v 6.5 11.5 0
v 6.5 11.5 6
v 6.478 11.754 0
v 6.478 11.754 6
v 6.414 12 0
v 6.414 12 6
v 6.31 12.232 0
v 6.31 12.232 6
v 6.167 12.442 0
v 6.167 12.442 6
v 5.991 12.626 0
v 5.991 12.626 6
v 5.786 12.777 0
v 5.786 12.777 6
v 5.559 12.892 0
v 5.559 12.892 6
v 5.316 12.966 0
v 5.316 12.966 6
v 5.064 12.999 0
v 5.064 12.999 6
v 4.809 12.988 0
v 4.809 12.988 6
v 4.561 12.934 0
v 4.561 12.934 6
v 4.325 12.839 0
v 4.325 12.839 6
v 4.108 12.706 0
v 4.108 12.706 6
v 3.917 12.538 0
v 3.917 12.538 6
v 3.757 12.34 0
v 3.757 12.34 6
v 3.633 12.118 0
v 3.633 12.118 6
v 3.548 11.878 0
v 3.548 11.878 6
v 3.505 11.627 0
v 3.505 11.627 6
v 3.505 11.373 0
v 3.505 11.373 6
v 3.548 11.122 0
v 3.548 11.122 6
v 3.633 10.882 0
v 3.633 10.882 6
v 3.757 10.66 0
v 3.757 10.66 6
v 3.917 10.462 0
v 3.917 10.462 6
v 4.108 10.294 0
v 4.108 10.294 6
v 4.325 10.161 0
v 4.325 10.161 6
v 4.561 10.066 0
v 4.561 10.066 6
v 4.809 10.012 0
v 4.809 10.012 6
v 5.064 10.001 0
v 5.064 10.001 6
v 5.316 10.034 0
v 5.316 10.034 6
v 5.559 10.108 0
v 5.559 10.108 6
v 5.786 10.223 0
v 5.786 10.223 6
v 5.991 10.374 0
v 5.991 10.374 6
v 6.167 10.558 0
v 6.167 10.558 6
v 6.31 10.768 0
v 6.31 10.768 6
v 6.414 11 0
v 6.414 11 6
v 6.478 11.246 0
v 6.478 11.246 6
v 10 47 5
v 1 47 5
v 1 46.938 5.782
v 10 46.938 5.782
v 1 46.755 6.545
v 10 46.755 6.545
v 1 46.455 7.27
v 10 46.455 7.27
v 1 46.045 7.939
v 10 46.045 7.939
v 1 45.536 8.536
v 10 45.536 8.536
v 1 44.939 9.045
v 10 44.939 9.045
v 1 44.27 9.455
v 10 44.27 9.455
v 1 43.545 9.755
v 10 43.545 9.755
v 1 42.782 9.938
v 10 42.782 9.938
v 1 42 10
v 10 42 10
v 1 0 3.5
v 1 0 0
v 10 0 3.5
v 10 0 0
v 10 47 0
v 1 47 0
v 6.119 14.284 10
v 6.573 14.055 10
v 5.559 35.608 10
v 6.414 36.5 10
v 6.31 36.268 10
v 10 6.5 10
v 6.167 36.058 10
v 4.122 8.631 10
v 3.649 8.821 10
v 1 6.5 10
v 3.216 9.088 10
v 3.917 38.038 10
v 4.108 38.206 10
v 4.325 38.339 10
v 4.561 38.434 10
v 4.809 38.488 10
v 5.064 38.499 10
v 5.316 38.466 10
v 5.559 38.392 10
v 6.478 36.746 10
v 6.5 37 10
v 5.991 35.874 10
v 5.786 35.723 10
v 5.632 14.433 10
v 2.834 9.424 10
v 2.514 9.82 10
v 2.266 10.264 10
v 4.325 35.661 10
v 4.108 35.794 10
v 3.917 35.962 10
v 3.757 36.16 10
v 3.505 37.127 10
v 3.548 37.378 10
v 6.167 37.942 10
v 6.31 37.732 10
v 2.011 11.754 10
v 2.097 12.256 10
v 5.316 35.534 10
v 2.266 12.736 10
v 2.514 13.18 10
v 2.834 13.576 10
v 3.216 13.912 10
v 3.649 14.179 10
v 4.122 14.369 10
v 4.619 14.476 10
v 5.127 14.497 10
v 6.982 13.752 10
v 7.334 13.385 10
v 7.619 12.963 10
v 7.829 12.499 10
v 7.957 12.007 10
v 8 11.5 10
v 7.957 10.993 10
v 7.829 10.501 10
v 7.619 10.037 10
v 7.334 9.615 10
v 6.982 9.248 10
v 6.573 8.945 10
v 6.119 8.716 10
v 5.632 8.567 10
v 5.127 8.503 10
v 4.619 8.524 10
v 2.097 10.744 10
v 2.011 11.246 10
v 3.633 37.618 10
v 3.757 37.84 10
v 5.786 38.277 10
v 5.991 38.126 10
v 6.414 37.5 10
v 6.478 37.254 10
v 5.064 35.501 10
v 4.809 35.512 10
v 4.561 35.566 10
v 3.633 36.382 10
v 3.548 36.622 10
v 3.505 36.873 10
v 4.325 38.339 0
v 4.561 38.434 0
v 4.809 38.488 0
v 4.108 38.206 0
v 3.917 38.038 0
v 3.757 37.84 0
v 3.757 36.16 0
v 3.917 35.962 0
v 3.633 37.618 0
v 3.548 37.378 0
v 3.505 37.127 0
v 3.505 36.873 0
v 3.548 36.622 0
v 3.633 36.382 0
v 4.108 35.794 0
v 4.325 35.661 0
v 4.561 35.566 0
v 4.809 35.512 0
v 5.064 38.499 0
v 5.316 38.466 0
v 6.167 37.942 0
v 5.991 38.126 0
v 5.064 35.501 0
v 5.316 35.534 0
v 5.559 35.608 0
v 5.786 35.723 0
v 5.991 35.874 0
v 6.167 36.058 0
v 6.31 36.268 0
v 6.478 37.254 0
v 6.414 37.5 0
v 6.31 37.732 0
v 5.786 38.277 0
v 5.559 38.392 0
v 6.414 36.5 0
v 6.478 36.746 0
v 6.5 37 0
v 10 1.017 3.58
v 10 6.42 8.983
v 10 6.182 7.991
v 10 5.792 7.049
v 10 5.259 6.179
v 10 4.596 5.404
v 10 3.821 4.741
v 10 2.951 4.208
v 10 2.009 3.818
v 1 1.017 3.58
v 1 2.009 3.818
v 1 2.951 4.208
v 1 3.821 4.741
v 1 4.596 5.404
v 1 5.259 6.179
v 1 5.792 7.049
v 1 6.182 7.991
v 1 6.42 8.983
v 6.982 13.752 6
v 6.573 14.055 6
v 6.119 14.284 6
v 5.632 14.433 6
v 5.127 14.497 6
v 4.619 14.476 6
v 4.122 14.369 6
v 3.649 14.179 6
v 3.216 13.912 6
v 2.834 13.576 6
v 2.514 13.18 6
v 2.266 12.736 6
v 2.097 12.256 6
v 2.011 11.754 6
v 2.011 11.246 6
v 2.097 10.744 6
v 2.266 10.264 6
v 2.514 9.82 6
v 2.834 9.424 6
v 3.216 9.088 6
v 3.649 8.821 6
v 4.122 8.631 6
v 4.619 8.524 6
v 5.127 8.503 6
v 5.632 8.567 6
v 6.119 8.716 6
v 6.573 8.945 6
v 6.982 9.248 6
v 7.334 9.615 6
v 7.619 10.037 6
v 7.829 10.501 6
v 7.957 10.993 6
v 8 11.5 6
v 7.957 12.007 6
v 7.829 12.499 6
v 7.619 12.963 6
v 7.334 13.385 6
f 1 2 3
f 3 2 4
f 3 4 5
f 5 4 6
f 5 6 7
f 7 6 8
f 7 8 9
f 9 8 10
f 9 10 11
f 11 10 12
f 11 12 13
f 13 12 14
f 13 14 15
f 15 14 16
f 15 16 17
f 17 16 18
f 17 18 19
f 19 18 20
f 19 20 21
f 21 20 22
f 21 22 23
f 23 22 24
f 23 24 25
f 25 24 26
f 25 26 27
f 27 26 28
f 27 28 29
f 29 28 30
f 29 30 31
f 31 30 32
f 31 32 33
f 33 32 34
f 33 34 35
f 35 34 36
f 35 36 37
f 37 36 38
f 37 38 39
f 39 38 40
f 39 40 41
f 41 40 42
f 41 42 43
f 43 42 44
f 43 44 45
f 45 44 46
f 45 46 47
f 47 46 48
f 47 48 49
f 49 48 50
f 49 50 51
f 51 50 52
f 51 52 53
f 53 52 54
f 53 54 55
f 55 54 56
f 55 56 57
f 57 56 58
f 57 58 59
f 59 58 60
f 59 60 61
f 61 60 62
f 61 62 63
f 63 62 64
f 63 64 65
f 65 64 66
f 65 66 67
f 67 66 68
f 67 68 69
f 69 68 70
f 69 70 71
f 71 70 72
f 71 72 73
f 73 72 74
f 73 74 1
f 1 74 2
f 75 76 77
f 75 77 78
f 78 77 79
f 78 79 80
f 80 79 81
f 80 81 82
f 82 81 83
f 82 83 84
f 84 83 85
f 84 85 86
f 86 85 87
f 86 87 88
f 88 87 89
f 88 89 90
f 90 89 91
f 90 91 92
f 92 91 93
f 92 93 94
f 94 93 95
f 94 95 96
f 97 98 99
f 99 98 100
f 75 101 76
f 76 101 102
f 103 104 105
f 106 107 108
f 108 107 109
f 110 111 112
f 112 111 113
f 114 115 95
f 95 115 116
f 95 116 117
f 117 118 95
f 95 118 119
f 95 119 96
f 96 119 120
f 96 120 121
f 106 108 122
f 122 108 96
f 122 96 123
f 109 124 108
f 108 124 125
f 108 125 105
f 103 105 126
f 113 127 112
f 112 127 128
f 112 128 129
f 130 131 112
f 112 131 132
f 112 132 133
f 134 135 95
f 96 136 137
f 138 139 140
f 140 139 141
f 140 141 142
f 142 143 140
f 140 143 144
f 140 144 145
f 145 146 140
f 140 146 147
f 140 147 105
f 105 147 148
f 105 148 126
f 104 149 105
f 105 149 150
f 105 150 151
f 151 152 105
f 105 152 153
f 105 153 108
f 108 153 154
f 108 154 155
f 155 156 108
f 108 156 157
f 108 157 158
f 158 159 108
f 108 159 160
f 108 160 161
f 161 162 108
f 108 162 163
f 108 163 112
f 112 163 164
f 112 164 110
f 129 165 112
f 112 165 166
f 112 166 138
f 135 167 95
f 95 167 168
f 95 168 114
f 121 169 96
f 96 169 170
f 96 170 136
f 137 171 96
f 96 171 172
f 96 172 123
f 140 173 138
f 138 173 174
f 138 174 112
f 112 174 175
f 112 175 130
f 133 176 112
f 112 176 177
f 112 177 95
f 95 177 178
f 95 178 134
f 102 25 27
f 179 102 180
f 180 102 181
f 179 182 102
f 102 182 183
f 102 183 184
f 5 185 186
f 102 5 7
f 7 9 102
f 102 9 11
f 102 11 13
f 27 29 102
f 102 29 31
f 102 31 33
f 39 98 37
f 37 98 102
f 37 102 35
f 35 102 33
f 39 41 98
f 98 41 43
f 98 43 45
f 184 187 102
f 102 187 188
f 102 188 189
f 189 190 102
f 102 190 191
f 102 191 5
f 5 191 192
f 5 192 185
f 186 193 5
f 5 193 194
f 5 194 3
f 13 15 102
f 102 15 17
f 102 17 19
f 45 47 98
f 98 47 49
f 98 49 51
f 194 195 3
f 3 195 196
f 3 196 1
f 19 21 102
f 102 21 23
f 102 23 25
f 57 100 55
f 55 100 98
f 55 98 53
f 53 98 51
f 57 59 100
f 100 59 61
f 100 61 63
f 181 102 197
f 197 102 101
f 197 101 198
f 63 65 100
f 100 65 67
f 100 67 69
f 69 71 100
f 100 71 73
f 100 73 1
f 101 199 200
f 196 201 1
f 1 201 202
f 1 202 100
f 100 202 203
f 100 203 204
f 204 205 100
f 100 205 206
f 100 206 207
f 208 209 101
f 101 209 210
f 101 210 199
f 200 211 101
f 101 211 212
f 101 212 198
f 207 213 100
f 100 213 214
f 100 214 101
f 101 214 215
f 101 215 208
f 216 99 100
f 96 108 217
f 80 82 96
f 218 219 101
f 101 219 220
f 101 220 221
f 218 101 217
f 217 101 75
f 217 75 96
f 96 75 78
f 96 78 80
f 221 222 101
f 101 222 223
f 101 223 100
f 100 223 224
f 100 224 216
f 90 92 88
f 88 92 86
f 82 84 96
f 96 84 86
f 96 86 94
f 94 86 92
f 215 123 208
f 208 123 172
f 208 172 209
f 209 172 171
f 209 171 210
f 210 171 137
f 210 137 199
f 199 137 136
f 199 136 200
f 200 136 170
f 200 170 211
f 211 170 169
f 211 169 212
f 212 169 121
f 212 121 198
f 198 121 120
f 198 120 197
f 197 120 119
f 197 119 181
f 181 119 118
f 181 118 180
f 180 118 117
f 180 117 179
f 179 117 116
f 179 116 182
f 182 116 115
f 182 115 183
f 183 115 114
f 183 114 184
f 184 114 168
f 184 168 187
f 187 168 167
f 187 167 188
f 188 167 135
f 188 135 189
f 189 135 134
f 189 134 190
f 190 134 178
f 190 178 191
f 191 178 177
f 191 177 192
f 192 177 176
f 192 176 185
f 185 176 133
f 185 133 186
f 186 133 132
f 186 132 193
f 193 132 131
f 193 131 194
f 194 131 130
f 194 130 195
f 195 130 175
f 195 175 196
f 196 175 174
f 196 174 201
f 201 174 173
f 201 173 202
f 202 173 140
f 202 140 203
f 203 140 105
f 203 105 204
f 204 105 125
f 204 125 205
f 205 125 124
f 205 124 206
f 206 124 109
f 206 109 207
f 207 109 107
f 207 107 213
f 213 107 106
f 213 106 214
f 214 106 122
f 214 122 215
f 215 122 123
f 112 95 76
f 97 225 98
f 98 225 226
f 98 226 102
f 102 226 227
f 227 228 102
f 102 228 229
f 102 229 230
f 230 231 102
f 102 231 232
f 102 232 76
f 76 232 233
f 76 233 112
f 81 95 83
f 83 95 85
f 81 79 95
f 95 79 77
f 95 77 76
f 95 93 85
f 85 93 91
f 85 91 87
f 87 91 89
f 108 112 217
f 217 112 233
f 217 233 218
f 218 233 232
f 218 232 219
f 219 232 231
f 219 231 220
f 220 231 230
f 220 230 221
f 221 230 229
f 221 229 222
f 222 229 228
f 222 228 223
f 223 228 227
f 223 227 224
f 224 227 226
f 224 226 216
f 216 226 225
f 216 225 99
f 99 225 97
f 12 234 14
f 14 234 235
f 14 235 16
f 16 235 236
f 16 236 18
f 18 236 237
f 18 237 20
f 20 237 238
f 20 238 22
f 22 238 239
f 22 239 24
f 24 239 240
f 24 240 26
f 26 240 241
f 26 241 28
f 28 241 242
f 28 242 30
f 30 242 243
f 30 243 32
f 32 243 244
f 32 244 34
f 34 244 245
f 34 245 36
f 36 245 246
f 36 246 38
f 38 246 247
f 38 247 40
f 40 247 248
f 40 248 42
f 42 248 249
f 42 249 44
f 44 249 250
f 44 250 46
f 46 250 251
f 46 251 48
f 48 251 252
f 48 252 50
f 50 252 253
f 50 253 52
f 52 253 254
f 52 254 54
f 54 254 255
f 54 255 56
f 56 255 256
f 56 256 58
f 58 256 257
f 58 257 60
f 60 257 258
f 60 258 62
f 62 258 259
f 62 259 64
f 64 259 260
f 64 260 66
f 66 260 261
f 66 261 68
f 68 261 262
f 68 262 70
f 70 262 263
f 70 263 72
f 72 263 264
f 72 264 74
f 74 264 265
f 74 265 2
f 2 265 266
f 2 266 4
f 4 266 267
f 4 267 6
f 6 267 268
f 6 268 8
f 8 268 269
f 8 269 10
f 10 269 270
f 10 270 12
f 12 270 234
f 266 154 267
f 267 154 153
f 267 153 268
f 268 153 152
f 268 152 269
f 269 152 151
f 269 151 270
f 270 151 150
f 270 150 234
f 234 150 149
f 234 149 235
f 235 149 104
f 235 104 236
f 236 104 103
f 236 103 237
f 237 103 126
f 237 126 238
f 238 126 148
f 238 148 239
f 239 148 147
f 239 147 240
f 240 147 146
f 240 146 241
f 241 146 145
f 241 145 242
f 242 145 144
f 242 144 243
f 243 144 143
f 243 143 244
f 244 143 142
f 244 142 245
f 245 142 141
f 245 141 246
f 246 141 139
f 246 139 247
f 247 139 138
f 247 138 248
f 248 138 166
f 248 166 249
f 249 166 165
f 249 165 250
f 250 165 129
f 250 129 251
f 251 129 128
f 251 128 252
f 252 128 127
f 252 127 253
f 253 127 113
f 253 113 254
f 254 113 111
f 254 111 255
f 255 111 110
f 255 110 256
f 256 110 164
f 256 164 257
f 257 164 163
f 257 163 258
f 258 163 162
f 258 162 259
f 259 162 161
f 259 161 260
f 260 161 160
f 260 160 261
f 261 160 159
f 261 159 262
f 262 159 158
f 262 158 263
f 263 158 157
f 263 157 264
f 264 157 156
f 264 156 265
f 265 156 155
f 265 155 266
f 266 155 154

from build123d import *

# Parameters (mm, degrees)
SKETCH1_W           = 10
SKETCH1_H           = 47
BOSS_EXTRUDE1_DEPTH = 10
SKETCH2_R           = 1.5
CUT_EXTRUDE1_DEPTH  = 10
FILLET1_R           = 5
SKETCH3_W           = 10
SKETCH3_H           = 47
CUT_EXTRUDE2_DEPTH  = 1
SKETCH4_R           = 6.5
CUT_EXTRUDE3_DEPTH  = 22
SKETCH5_R           = 3
CUT_EXTRUDE4_DEPTH  = 4


with BuildPart() as part:
    # Sketch1 → Boss-Extrude1 (new body)
    with BuildSketch(Plane.XY):
        with Locations((5, 23.5)):
            Rectangle(SKETCH1_W, SKETCH1_H)
    extrude(amount=BOSS_EXTRUDE1_DEPTH)

    # Sketch2 → Cut-Extrude1 (cut)
    with BuildSketch(Plane.XY.offset(10)):
        with Locations((5, 37)):
            Circle(SKETCH2_R)
        with Locations((5, 11.5)):
            Circle(SKETCH2_R)
    extrude(amount=-CUT_EXTRUDE1_DEPTH, mode=Mode.SUBTRACT)

    # Fillet1
    fillet1_edges = [part.edges().sort_by_distance(p)[0] for p in [
        (5, 47, 10),
    ]]
    fillet(fillet1_edges, radius=FILLET1_R)

    # Sketch3 → Cut-Extrude2 (cut)
    with BuildSketch(Plane.ZY):
        with Locations((5, 23.5)):
            Rectangle(SKETCH3_W, SKETCH3_H)
    extrude(amount=-CUT_EXTRUDE2_DEPTH, mode=Mode.SUBTRACT)

    # Sketch4 → Cut-Extrude3 (cut)
    with BuildSketch(Plane.ZY.offset(-1)):
        with Locations((10, 0)):
            Circle(SKETCH4_R)
    extrude(amount=-CUT_EXTRUDE3_DEPTH, mode=Mode.SUBTRACT)

    # Sketch5 → Cut-Extrude4 (cut)
    with BuildSketch(Plane.XY.offset(10)):
        with Locations((5, 11.5)):
            Circle(SKETCH5_R)
    extrude(amount=-CUT_EXTRUDE4_DEPTH, mode=Mode.SUBTRACT)


solid = part.part
